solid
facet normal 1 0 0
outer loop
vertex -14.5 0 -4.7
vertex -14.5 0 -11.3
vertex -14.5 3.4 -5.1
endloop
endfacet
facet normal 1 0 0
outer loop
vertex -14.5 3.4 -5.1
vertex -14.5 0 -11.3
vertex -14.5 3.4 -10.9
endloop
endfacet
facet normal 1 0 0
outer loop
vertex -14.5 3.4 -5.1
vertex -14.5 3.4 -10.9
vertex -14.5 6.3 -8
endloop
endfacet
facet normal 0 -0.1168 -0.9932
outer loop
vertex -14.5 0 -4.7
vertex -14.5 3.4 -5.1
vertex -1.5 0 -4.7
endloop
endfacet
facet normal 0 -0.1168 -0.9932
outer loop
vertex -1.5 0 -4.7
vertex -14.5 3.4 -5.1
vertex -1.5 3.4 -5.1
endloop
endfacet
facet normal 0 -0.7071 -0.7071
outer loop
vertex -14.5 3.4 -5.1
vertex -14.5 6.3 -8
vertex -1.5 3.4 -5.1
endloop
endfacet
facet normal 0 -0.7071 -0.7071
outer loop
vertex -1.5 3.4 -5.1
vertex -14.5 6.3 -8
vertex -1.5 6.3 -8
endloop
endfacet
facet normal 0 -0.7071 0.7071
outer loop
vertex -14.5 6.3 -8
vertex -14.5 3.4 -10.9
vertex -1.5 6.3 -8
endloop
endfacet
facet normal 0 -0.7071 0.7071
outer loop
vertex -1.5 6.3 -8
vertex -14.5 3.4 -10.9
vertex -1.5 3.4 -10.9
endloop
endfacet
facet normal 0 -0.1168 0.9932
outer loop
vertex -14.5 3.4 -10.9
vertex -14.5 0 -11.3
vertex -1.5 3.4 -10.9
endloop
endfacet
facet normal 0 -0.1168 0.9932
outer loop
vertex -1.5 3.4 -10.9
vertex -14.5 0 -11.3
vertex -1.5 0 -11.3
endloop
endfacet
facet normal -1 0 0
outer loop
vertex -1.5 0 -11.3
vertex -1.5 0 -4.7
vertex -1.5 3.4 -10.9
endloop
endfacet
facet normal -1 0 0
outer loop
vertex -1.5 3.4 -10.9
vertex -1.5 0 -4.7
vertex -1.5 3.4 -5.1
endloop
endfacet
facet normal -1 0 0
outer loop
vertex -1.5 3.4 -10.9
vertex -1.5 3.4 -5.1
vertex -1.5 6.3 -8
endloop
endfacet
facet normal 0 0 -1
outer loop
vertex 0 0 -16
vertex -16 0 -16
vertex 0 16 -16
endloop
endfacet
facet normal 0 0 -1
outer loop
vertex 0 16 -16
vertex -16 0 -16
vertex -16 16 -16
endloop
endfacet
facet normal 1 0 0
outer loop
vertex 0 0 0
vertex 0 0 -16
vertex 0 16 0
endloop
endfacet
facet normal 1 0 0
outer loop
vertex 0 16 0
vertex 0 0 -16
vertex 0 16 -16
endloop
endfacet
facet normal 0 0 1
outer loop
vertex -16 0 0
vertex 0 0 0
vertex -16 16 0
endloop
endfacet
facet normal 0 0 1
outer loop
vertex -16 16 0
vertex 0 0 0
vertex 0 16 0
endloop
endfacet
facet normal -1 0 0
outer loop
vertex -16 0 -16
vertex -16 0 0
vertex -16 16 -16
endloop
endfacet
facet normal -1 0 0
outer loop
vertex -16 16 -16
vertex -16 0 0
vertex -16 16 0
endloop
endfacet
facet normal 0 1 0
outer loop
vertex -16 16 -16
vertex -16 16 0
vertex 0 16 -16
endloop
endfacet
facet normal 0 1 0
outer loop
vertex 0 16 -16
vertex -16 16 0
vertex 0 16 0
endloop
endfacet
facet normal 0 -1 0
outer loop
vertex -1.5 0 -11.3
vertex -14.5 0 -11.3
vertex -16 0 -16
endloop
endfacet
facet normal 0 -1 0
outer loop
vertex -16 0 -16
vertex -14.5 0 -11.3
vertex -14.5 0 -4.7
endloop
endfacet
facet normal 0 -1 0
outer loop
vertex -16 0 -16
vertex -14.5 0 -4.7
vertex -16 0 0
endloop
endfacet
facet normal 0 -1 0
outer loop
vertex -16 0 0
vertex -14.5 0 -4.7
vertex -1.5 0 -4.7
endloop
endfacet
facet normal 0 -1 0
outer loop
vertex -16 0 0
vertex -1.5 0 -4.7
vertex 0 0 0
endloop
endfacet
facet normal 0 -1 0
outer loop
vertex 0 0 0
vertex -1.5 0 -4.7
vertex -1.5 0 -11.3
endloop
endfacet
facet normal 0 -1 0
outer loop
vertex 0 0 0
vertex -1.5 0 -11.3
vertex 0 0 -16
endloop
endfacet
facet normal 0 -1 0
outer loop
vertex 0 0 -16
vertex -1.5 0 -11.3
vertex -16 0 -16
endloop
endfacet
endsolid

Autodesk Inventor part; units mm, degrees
ref_plane "YZ Plane" through (0, 0, 0) normal (1, 0, 0) x (0, 1, 0)
ref_plane "XZ Plane" through (0, 0, 0) normal (0, 1, 0) x (-1, 0, 0)
ref_plane "XY Plane" through (0, 0, 0) normal (0, 0, 1) x (1, 0, 0)
sketch "Sketch1" plane through (0, 0, 0) normal (0, 1, 0) x (-1, 0, 0)
  point P0 (0, 0)
sketch "Sketch2" plane through (0, 0, 0) normal (0, 1, 0) x (-1, 0, 0)
  line L0 (0, 0) -> (16, 0)
  line L1 (16, 0) -> (16, -16)
  line L2 (16, -16) -> (0, -16)
  line L3 (0, -16) -> (0, 0)
  line L4 (0, 0) -> (0, -8)
  dimension "d1" = 16
  dimension "d2" = 16
extrude "Extrusion1" add sketch "Sketch2" along normal blind 16
ref_plane "Work Plane1" through (-8, 0, 0) normal (1, 0, 0) x (0, 0, -1)
sketch "Sketch5" plane through (-8, 0, 0) normal (1, 0, 0) x (0, 0, -1)
  line L0 (0, 0) -> (16, 0) projected
  line L1 (11.3, 0) -> (4.7, 0) projected
  line L2 (8, 0) -> (11.3, 0)
  line L3 (11.3, 0) -> (11.3, 3.4)
  line L4 (11.3, 3.4) -> (10.9, 3.4)
  line L5 (11.3, 0) -> (11.3, 3.3) projected
  line L6 (10.9, 3.4) -> (11.3, 0)
  line L7 (11.3, 3.3) -> (8, 6.6) projected
  line L8 (8, 0) -> (8, 6.6)
  line L9 (10.9, 3.4) -> (8, 6.3)
  line L10 (16, 0) -> (0, 0)
  line L11 (5.1, 3.4) -> (4.7, 0)
  line L12 (5.1, 3.4) -> (8, 6.3)
  dimension "d39" = 3.3
  dimension "d40" = 3.4
  dimension "d41" = 0.4
  dimension "d42" = 6.6
extrude "Extrusion4" cut sketch "Sketch5" along normal mid plane 13 contours L11 L12 L8 L0 | L8 L9 L6 L0
properties part number "pawn"
